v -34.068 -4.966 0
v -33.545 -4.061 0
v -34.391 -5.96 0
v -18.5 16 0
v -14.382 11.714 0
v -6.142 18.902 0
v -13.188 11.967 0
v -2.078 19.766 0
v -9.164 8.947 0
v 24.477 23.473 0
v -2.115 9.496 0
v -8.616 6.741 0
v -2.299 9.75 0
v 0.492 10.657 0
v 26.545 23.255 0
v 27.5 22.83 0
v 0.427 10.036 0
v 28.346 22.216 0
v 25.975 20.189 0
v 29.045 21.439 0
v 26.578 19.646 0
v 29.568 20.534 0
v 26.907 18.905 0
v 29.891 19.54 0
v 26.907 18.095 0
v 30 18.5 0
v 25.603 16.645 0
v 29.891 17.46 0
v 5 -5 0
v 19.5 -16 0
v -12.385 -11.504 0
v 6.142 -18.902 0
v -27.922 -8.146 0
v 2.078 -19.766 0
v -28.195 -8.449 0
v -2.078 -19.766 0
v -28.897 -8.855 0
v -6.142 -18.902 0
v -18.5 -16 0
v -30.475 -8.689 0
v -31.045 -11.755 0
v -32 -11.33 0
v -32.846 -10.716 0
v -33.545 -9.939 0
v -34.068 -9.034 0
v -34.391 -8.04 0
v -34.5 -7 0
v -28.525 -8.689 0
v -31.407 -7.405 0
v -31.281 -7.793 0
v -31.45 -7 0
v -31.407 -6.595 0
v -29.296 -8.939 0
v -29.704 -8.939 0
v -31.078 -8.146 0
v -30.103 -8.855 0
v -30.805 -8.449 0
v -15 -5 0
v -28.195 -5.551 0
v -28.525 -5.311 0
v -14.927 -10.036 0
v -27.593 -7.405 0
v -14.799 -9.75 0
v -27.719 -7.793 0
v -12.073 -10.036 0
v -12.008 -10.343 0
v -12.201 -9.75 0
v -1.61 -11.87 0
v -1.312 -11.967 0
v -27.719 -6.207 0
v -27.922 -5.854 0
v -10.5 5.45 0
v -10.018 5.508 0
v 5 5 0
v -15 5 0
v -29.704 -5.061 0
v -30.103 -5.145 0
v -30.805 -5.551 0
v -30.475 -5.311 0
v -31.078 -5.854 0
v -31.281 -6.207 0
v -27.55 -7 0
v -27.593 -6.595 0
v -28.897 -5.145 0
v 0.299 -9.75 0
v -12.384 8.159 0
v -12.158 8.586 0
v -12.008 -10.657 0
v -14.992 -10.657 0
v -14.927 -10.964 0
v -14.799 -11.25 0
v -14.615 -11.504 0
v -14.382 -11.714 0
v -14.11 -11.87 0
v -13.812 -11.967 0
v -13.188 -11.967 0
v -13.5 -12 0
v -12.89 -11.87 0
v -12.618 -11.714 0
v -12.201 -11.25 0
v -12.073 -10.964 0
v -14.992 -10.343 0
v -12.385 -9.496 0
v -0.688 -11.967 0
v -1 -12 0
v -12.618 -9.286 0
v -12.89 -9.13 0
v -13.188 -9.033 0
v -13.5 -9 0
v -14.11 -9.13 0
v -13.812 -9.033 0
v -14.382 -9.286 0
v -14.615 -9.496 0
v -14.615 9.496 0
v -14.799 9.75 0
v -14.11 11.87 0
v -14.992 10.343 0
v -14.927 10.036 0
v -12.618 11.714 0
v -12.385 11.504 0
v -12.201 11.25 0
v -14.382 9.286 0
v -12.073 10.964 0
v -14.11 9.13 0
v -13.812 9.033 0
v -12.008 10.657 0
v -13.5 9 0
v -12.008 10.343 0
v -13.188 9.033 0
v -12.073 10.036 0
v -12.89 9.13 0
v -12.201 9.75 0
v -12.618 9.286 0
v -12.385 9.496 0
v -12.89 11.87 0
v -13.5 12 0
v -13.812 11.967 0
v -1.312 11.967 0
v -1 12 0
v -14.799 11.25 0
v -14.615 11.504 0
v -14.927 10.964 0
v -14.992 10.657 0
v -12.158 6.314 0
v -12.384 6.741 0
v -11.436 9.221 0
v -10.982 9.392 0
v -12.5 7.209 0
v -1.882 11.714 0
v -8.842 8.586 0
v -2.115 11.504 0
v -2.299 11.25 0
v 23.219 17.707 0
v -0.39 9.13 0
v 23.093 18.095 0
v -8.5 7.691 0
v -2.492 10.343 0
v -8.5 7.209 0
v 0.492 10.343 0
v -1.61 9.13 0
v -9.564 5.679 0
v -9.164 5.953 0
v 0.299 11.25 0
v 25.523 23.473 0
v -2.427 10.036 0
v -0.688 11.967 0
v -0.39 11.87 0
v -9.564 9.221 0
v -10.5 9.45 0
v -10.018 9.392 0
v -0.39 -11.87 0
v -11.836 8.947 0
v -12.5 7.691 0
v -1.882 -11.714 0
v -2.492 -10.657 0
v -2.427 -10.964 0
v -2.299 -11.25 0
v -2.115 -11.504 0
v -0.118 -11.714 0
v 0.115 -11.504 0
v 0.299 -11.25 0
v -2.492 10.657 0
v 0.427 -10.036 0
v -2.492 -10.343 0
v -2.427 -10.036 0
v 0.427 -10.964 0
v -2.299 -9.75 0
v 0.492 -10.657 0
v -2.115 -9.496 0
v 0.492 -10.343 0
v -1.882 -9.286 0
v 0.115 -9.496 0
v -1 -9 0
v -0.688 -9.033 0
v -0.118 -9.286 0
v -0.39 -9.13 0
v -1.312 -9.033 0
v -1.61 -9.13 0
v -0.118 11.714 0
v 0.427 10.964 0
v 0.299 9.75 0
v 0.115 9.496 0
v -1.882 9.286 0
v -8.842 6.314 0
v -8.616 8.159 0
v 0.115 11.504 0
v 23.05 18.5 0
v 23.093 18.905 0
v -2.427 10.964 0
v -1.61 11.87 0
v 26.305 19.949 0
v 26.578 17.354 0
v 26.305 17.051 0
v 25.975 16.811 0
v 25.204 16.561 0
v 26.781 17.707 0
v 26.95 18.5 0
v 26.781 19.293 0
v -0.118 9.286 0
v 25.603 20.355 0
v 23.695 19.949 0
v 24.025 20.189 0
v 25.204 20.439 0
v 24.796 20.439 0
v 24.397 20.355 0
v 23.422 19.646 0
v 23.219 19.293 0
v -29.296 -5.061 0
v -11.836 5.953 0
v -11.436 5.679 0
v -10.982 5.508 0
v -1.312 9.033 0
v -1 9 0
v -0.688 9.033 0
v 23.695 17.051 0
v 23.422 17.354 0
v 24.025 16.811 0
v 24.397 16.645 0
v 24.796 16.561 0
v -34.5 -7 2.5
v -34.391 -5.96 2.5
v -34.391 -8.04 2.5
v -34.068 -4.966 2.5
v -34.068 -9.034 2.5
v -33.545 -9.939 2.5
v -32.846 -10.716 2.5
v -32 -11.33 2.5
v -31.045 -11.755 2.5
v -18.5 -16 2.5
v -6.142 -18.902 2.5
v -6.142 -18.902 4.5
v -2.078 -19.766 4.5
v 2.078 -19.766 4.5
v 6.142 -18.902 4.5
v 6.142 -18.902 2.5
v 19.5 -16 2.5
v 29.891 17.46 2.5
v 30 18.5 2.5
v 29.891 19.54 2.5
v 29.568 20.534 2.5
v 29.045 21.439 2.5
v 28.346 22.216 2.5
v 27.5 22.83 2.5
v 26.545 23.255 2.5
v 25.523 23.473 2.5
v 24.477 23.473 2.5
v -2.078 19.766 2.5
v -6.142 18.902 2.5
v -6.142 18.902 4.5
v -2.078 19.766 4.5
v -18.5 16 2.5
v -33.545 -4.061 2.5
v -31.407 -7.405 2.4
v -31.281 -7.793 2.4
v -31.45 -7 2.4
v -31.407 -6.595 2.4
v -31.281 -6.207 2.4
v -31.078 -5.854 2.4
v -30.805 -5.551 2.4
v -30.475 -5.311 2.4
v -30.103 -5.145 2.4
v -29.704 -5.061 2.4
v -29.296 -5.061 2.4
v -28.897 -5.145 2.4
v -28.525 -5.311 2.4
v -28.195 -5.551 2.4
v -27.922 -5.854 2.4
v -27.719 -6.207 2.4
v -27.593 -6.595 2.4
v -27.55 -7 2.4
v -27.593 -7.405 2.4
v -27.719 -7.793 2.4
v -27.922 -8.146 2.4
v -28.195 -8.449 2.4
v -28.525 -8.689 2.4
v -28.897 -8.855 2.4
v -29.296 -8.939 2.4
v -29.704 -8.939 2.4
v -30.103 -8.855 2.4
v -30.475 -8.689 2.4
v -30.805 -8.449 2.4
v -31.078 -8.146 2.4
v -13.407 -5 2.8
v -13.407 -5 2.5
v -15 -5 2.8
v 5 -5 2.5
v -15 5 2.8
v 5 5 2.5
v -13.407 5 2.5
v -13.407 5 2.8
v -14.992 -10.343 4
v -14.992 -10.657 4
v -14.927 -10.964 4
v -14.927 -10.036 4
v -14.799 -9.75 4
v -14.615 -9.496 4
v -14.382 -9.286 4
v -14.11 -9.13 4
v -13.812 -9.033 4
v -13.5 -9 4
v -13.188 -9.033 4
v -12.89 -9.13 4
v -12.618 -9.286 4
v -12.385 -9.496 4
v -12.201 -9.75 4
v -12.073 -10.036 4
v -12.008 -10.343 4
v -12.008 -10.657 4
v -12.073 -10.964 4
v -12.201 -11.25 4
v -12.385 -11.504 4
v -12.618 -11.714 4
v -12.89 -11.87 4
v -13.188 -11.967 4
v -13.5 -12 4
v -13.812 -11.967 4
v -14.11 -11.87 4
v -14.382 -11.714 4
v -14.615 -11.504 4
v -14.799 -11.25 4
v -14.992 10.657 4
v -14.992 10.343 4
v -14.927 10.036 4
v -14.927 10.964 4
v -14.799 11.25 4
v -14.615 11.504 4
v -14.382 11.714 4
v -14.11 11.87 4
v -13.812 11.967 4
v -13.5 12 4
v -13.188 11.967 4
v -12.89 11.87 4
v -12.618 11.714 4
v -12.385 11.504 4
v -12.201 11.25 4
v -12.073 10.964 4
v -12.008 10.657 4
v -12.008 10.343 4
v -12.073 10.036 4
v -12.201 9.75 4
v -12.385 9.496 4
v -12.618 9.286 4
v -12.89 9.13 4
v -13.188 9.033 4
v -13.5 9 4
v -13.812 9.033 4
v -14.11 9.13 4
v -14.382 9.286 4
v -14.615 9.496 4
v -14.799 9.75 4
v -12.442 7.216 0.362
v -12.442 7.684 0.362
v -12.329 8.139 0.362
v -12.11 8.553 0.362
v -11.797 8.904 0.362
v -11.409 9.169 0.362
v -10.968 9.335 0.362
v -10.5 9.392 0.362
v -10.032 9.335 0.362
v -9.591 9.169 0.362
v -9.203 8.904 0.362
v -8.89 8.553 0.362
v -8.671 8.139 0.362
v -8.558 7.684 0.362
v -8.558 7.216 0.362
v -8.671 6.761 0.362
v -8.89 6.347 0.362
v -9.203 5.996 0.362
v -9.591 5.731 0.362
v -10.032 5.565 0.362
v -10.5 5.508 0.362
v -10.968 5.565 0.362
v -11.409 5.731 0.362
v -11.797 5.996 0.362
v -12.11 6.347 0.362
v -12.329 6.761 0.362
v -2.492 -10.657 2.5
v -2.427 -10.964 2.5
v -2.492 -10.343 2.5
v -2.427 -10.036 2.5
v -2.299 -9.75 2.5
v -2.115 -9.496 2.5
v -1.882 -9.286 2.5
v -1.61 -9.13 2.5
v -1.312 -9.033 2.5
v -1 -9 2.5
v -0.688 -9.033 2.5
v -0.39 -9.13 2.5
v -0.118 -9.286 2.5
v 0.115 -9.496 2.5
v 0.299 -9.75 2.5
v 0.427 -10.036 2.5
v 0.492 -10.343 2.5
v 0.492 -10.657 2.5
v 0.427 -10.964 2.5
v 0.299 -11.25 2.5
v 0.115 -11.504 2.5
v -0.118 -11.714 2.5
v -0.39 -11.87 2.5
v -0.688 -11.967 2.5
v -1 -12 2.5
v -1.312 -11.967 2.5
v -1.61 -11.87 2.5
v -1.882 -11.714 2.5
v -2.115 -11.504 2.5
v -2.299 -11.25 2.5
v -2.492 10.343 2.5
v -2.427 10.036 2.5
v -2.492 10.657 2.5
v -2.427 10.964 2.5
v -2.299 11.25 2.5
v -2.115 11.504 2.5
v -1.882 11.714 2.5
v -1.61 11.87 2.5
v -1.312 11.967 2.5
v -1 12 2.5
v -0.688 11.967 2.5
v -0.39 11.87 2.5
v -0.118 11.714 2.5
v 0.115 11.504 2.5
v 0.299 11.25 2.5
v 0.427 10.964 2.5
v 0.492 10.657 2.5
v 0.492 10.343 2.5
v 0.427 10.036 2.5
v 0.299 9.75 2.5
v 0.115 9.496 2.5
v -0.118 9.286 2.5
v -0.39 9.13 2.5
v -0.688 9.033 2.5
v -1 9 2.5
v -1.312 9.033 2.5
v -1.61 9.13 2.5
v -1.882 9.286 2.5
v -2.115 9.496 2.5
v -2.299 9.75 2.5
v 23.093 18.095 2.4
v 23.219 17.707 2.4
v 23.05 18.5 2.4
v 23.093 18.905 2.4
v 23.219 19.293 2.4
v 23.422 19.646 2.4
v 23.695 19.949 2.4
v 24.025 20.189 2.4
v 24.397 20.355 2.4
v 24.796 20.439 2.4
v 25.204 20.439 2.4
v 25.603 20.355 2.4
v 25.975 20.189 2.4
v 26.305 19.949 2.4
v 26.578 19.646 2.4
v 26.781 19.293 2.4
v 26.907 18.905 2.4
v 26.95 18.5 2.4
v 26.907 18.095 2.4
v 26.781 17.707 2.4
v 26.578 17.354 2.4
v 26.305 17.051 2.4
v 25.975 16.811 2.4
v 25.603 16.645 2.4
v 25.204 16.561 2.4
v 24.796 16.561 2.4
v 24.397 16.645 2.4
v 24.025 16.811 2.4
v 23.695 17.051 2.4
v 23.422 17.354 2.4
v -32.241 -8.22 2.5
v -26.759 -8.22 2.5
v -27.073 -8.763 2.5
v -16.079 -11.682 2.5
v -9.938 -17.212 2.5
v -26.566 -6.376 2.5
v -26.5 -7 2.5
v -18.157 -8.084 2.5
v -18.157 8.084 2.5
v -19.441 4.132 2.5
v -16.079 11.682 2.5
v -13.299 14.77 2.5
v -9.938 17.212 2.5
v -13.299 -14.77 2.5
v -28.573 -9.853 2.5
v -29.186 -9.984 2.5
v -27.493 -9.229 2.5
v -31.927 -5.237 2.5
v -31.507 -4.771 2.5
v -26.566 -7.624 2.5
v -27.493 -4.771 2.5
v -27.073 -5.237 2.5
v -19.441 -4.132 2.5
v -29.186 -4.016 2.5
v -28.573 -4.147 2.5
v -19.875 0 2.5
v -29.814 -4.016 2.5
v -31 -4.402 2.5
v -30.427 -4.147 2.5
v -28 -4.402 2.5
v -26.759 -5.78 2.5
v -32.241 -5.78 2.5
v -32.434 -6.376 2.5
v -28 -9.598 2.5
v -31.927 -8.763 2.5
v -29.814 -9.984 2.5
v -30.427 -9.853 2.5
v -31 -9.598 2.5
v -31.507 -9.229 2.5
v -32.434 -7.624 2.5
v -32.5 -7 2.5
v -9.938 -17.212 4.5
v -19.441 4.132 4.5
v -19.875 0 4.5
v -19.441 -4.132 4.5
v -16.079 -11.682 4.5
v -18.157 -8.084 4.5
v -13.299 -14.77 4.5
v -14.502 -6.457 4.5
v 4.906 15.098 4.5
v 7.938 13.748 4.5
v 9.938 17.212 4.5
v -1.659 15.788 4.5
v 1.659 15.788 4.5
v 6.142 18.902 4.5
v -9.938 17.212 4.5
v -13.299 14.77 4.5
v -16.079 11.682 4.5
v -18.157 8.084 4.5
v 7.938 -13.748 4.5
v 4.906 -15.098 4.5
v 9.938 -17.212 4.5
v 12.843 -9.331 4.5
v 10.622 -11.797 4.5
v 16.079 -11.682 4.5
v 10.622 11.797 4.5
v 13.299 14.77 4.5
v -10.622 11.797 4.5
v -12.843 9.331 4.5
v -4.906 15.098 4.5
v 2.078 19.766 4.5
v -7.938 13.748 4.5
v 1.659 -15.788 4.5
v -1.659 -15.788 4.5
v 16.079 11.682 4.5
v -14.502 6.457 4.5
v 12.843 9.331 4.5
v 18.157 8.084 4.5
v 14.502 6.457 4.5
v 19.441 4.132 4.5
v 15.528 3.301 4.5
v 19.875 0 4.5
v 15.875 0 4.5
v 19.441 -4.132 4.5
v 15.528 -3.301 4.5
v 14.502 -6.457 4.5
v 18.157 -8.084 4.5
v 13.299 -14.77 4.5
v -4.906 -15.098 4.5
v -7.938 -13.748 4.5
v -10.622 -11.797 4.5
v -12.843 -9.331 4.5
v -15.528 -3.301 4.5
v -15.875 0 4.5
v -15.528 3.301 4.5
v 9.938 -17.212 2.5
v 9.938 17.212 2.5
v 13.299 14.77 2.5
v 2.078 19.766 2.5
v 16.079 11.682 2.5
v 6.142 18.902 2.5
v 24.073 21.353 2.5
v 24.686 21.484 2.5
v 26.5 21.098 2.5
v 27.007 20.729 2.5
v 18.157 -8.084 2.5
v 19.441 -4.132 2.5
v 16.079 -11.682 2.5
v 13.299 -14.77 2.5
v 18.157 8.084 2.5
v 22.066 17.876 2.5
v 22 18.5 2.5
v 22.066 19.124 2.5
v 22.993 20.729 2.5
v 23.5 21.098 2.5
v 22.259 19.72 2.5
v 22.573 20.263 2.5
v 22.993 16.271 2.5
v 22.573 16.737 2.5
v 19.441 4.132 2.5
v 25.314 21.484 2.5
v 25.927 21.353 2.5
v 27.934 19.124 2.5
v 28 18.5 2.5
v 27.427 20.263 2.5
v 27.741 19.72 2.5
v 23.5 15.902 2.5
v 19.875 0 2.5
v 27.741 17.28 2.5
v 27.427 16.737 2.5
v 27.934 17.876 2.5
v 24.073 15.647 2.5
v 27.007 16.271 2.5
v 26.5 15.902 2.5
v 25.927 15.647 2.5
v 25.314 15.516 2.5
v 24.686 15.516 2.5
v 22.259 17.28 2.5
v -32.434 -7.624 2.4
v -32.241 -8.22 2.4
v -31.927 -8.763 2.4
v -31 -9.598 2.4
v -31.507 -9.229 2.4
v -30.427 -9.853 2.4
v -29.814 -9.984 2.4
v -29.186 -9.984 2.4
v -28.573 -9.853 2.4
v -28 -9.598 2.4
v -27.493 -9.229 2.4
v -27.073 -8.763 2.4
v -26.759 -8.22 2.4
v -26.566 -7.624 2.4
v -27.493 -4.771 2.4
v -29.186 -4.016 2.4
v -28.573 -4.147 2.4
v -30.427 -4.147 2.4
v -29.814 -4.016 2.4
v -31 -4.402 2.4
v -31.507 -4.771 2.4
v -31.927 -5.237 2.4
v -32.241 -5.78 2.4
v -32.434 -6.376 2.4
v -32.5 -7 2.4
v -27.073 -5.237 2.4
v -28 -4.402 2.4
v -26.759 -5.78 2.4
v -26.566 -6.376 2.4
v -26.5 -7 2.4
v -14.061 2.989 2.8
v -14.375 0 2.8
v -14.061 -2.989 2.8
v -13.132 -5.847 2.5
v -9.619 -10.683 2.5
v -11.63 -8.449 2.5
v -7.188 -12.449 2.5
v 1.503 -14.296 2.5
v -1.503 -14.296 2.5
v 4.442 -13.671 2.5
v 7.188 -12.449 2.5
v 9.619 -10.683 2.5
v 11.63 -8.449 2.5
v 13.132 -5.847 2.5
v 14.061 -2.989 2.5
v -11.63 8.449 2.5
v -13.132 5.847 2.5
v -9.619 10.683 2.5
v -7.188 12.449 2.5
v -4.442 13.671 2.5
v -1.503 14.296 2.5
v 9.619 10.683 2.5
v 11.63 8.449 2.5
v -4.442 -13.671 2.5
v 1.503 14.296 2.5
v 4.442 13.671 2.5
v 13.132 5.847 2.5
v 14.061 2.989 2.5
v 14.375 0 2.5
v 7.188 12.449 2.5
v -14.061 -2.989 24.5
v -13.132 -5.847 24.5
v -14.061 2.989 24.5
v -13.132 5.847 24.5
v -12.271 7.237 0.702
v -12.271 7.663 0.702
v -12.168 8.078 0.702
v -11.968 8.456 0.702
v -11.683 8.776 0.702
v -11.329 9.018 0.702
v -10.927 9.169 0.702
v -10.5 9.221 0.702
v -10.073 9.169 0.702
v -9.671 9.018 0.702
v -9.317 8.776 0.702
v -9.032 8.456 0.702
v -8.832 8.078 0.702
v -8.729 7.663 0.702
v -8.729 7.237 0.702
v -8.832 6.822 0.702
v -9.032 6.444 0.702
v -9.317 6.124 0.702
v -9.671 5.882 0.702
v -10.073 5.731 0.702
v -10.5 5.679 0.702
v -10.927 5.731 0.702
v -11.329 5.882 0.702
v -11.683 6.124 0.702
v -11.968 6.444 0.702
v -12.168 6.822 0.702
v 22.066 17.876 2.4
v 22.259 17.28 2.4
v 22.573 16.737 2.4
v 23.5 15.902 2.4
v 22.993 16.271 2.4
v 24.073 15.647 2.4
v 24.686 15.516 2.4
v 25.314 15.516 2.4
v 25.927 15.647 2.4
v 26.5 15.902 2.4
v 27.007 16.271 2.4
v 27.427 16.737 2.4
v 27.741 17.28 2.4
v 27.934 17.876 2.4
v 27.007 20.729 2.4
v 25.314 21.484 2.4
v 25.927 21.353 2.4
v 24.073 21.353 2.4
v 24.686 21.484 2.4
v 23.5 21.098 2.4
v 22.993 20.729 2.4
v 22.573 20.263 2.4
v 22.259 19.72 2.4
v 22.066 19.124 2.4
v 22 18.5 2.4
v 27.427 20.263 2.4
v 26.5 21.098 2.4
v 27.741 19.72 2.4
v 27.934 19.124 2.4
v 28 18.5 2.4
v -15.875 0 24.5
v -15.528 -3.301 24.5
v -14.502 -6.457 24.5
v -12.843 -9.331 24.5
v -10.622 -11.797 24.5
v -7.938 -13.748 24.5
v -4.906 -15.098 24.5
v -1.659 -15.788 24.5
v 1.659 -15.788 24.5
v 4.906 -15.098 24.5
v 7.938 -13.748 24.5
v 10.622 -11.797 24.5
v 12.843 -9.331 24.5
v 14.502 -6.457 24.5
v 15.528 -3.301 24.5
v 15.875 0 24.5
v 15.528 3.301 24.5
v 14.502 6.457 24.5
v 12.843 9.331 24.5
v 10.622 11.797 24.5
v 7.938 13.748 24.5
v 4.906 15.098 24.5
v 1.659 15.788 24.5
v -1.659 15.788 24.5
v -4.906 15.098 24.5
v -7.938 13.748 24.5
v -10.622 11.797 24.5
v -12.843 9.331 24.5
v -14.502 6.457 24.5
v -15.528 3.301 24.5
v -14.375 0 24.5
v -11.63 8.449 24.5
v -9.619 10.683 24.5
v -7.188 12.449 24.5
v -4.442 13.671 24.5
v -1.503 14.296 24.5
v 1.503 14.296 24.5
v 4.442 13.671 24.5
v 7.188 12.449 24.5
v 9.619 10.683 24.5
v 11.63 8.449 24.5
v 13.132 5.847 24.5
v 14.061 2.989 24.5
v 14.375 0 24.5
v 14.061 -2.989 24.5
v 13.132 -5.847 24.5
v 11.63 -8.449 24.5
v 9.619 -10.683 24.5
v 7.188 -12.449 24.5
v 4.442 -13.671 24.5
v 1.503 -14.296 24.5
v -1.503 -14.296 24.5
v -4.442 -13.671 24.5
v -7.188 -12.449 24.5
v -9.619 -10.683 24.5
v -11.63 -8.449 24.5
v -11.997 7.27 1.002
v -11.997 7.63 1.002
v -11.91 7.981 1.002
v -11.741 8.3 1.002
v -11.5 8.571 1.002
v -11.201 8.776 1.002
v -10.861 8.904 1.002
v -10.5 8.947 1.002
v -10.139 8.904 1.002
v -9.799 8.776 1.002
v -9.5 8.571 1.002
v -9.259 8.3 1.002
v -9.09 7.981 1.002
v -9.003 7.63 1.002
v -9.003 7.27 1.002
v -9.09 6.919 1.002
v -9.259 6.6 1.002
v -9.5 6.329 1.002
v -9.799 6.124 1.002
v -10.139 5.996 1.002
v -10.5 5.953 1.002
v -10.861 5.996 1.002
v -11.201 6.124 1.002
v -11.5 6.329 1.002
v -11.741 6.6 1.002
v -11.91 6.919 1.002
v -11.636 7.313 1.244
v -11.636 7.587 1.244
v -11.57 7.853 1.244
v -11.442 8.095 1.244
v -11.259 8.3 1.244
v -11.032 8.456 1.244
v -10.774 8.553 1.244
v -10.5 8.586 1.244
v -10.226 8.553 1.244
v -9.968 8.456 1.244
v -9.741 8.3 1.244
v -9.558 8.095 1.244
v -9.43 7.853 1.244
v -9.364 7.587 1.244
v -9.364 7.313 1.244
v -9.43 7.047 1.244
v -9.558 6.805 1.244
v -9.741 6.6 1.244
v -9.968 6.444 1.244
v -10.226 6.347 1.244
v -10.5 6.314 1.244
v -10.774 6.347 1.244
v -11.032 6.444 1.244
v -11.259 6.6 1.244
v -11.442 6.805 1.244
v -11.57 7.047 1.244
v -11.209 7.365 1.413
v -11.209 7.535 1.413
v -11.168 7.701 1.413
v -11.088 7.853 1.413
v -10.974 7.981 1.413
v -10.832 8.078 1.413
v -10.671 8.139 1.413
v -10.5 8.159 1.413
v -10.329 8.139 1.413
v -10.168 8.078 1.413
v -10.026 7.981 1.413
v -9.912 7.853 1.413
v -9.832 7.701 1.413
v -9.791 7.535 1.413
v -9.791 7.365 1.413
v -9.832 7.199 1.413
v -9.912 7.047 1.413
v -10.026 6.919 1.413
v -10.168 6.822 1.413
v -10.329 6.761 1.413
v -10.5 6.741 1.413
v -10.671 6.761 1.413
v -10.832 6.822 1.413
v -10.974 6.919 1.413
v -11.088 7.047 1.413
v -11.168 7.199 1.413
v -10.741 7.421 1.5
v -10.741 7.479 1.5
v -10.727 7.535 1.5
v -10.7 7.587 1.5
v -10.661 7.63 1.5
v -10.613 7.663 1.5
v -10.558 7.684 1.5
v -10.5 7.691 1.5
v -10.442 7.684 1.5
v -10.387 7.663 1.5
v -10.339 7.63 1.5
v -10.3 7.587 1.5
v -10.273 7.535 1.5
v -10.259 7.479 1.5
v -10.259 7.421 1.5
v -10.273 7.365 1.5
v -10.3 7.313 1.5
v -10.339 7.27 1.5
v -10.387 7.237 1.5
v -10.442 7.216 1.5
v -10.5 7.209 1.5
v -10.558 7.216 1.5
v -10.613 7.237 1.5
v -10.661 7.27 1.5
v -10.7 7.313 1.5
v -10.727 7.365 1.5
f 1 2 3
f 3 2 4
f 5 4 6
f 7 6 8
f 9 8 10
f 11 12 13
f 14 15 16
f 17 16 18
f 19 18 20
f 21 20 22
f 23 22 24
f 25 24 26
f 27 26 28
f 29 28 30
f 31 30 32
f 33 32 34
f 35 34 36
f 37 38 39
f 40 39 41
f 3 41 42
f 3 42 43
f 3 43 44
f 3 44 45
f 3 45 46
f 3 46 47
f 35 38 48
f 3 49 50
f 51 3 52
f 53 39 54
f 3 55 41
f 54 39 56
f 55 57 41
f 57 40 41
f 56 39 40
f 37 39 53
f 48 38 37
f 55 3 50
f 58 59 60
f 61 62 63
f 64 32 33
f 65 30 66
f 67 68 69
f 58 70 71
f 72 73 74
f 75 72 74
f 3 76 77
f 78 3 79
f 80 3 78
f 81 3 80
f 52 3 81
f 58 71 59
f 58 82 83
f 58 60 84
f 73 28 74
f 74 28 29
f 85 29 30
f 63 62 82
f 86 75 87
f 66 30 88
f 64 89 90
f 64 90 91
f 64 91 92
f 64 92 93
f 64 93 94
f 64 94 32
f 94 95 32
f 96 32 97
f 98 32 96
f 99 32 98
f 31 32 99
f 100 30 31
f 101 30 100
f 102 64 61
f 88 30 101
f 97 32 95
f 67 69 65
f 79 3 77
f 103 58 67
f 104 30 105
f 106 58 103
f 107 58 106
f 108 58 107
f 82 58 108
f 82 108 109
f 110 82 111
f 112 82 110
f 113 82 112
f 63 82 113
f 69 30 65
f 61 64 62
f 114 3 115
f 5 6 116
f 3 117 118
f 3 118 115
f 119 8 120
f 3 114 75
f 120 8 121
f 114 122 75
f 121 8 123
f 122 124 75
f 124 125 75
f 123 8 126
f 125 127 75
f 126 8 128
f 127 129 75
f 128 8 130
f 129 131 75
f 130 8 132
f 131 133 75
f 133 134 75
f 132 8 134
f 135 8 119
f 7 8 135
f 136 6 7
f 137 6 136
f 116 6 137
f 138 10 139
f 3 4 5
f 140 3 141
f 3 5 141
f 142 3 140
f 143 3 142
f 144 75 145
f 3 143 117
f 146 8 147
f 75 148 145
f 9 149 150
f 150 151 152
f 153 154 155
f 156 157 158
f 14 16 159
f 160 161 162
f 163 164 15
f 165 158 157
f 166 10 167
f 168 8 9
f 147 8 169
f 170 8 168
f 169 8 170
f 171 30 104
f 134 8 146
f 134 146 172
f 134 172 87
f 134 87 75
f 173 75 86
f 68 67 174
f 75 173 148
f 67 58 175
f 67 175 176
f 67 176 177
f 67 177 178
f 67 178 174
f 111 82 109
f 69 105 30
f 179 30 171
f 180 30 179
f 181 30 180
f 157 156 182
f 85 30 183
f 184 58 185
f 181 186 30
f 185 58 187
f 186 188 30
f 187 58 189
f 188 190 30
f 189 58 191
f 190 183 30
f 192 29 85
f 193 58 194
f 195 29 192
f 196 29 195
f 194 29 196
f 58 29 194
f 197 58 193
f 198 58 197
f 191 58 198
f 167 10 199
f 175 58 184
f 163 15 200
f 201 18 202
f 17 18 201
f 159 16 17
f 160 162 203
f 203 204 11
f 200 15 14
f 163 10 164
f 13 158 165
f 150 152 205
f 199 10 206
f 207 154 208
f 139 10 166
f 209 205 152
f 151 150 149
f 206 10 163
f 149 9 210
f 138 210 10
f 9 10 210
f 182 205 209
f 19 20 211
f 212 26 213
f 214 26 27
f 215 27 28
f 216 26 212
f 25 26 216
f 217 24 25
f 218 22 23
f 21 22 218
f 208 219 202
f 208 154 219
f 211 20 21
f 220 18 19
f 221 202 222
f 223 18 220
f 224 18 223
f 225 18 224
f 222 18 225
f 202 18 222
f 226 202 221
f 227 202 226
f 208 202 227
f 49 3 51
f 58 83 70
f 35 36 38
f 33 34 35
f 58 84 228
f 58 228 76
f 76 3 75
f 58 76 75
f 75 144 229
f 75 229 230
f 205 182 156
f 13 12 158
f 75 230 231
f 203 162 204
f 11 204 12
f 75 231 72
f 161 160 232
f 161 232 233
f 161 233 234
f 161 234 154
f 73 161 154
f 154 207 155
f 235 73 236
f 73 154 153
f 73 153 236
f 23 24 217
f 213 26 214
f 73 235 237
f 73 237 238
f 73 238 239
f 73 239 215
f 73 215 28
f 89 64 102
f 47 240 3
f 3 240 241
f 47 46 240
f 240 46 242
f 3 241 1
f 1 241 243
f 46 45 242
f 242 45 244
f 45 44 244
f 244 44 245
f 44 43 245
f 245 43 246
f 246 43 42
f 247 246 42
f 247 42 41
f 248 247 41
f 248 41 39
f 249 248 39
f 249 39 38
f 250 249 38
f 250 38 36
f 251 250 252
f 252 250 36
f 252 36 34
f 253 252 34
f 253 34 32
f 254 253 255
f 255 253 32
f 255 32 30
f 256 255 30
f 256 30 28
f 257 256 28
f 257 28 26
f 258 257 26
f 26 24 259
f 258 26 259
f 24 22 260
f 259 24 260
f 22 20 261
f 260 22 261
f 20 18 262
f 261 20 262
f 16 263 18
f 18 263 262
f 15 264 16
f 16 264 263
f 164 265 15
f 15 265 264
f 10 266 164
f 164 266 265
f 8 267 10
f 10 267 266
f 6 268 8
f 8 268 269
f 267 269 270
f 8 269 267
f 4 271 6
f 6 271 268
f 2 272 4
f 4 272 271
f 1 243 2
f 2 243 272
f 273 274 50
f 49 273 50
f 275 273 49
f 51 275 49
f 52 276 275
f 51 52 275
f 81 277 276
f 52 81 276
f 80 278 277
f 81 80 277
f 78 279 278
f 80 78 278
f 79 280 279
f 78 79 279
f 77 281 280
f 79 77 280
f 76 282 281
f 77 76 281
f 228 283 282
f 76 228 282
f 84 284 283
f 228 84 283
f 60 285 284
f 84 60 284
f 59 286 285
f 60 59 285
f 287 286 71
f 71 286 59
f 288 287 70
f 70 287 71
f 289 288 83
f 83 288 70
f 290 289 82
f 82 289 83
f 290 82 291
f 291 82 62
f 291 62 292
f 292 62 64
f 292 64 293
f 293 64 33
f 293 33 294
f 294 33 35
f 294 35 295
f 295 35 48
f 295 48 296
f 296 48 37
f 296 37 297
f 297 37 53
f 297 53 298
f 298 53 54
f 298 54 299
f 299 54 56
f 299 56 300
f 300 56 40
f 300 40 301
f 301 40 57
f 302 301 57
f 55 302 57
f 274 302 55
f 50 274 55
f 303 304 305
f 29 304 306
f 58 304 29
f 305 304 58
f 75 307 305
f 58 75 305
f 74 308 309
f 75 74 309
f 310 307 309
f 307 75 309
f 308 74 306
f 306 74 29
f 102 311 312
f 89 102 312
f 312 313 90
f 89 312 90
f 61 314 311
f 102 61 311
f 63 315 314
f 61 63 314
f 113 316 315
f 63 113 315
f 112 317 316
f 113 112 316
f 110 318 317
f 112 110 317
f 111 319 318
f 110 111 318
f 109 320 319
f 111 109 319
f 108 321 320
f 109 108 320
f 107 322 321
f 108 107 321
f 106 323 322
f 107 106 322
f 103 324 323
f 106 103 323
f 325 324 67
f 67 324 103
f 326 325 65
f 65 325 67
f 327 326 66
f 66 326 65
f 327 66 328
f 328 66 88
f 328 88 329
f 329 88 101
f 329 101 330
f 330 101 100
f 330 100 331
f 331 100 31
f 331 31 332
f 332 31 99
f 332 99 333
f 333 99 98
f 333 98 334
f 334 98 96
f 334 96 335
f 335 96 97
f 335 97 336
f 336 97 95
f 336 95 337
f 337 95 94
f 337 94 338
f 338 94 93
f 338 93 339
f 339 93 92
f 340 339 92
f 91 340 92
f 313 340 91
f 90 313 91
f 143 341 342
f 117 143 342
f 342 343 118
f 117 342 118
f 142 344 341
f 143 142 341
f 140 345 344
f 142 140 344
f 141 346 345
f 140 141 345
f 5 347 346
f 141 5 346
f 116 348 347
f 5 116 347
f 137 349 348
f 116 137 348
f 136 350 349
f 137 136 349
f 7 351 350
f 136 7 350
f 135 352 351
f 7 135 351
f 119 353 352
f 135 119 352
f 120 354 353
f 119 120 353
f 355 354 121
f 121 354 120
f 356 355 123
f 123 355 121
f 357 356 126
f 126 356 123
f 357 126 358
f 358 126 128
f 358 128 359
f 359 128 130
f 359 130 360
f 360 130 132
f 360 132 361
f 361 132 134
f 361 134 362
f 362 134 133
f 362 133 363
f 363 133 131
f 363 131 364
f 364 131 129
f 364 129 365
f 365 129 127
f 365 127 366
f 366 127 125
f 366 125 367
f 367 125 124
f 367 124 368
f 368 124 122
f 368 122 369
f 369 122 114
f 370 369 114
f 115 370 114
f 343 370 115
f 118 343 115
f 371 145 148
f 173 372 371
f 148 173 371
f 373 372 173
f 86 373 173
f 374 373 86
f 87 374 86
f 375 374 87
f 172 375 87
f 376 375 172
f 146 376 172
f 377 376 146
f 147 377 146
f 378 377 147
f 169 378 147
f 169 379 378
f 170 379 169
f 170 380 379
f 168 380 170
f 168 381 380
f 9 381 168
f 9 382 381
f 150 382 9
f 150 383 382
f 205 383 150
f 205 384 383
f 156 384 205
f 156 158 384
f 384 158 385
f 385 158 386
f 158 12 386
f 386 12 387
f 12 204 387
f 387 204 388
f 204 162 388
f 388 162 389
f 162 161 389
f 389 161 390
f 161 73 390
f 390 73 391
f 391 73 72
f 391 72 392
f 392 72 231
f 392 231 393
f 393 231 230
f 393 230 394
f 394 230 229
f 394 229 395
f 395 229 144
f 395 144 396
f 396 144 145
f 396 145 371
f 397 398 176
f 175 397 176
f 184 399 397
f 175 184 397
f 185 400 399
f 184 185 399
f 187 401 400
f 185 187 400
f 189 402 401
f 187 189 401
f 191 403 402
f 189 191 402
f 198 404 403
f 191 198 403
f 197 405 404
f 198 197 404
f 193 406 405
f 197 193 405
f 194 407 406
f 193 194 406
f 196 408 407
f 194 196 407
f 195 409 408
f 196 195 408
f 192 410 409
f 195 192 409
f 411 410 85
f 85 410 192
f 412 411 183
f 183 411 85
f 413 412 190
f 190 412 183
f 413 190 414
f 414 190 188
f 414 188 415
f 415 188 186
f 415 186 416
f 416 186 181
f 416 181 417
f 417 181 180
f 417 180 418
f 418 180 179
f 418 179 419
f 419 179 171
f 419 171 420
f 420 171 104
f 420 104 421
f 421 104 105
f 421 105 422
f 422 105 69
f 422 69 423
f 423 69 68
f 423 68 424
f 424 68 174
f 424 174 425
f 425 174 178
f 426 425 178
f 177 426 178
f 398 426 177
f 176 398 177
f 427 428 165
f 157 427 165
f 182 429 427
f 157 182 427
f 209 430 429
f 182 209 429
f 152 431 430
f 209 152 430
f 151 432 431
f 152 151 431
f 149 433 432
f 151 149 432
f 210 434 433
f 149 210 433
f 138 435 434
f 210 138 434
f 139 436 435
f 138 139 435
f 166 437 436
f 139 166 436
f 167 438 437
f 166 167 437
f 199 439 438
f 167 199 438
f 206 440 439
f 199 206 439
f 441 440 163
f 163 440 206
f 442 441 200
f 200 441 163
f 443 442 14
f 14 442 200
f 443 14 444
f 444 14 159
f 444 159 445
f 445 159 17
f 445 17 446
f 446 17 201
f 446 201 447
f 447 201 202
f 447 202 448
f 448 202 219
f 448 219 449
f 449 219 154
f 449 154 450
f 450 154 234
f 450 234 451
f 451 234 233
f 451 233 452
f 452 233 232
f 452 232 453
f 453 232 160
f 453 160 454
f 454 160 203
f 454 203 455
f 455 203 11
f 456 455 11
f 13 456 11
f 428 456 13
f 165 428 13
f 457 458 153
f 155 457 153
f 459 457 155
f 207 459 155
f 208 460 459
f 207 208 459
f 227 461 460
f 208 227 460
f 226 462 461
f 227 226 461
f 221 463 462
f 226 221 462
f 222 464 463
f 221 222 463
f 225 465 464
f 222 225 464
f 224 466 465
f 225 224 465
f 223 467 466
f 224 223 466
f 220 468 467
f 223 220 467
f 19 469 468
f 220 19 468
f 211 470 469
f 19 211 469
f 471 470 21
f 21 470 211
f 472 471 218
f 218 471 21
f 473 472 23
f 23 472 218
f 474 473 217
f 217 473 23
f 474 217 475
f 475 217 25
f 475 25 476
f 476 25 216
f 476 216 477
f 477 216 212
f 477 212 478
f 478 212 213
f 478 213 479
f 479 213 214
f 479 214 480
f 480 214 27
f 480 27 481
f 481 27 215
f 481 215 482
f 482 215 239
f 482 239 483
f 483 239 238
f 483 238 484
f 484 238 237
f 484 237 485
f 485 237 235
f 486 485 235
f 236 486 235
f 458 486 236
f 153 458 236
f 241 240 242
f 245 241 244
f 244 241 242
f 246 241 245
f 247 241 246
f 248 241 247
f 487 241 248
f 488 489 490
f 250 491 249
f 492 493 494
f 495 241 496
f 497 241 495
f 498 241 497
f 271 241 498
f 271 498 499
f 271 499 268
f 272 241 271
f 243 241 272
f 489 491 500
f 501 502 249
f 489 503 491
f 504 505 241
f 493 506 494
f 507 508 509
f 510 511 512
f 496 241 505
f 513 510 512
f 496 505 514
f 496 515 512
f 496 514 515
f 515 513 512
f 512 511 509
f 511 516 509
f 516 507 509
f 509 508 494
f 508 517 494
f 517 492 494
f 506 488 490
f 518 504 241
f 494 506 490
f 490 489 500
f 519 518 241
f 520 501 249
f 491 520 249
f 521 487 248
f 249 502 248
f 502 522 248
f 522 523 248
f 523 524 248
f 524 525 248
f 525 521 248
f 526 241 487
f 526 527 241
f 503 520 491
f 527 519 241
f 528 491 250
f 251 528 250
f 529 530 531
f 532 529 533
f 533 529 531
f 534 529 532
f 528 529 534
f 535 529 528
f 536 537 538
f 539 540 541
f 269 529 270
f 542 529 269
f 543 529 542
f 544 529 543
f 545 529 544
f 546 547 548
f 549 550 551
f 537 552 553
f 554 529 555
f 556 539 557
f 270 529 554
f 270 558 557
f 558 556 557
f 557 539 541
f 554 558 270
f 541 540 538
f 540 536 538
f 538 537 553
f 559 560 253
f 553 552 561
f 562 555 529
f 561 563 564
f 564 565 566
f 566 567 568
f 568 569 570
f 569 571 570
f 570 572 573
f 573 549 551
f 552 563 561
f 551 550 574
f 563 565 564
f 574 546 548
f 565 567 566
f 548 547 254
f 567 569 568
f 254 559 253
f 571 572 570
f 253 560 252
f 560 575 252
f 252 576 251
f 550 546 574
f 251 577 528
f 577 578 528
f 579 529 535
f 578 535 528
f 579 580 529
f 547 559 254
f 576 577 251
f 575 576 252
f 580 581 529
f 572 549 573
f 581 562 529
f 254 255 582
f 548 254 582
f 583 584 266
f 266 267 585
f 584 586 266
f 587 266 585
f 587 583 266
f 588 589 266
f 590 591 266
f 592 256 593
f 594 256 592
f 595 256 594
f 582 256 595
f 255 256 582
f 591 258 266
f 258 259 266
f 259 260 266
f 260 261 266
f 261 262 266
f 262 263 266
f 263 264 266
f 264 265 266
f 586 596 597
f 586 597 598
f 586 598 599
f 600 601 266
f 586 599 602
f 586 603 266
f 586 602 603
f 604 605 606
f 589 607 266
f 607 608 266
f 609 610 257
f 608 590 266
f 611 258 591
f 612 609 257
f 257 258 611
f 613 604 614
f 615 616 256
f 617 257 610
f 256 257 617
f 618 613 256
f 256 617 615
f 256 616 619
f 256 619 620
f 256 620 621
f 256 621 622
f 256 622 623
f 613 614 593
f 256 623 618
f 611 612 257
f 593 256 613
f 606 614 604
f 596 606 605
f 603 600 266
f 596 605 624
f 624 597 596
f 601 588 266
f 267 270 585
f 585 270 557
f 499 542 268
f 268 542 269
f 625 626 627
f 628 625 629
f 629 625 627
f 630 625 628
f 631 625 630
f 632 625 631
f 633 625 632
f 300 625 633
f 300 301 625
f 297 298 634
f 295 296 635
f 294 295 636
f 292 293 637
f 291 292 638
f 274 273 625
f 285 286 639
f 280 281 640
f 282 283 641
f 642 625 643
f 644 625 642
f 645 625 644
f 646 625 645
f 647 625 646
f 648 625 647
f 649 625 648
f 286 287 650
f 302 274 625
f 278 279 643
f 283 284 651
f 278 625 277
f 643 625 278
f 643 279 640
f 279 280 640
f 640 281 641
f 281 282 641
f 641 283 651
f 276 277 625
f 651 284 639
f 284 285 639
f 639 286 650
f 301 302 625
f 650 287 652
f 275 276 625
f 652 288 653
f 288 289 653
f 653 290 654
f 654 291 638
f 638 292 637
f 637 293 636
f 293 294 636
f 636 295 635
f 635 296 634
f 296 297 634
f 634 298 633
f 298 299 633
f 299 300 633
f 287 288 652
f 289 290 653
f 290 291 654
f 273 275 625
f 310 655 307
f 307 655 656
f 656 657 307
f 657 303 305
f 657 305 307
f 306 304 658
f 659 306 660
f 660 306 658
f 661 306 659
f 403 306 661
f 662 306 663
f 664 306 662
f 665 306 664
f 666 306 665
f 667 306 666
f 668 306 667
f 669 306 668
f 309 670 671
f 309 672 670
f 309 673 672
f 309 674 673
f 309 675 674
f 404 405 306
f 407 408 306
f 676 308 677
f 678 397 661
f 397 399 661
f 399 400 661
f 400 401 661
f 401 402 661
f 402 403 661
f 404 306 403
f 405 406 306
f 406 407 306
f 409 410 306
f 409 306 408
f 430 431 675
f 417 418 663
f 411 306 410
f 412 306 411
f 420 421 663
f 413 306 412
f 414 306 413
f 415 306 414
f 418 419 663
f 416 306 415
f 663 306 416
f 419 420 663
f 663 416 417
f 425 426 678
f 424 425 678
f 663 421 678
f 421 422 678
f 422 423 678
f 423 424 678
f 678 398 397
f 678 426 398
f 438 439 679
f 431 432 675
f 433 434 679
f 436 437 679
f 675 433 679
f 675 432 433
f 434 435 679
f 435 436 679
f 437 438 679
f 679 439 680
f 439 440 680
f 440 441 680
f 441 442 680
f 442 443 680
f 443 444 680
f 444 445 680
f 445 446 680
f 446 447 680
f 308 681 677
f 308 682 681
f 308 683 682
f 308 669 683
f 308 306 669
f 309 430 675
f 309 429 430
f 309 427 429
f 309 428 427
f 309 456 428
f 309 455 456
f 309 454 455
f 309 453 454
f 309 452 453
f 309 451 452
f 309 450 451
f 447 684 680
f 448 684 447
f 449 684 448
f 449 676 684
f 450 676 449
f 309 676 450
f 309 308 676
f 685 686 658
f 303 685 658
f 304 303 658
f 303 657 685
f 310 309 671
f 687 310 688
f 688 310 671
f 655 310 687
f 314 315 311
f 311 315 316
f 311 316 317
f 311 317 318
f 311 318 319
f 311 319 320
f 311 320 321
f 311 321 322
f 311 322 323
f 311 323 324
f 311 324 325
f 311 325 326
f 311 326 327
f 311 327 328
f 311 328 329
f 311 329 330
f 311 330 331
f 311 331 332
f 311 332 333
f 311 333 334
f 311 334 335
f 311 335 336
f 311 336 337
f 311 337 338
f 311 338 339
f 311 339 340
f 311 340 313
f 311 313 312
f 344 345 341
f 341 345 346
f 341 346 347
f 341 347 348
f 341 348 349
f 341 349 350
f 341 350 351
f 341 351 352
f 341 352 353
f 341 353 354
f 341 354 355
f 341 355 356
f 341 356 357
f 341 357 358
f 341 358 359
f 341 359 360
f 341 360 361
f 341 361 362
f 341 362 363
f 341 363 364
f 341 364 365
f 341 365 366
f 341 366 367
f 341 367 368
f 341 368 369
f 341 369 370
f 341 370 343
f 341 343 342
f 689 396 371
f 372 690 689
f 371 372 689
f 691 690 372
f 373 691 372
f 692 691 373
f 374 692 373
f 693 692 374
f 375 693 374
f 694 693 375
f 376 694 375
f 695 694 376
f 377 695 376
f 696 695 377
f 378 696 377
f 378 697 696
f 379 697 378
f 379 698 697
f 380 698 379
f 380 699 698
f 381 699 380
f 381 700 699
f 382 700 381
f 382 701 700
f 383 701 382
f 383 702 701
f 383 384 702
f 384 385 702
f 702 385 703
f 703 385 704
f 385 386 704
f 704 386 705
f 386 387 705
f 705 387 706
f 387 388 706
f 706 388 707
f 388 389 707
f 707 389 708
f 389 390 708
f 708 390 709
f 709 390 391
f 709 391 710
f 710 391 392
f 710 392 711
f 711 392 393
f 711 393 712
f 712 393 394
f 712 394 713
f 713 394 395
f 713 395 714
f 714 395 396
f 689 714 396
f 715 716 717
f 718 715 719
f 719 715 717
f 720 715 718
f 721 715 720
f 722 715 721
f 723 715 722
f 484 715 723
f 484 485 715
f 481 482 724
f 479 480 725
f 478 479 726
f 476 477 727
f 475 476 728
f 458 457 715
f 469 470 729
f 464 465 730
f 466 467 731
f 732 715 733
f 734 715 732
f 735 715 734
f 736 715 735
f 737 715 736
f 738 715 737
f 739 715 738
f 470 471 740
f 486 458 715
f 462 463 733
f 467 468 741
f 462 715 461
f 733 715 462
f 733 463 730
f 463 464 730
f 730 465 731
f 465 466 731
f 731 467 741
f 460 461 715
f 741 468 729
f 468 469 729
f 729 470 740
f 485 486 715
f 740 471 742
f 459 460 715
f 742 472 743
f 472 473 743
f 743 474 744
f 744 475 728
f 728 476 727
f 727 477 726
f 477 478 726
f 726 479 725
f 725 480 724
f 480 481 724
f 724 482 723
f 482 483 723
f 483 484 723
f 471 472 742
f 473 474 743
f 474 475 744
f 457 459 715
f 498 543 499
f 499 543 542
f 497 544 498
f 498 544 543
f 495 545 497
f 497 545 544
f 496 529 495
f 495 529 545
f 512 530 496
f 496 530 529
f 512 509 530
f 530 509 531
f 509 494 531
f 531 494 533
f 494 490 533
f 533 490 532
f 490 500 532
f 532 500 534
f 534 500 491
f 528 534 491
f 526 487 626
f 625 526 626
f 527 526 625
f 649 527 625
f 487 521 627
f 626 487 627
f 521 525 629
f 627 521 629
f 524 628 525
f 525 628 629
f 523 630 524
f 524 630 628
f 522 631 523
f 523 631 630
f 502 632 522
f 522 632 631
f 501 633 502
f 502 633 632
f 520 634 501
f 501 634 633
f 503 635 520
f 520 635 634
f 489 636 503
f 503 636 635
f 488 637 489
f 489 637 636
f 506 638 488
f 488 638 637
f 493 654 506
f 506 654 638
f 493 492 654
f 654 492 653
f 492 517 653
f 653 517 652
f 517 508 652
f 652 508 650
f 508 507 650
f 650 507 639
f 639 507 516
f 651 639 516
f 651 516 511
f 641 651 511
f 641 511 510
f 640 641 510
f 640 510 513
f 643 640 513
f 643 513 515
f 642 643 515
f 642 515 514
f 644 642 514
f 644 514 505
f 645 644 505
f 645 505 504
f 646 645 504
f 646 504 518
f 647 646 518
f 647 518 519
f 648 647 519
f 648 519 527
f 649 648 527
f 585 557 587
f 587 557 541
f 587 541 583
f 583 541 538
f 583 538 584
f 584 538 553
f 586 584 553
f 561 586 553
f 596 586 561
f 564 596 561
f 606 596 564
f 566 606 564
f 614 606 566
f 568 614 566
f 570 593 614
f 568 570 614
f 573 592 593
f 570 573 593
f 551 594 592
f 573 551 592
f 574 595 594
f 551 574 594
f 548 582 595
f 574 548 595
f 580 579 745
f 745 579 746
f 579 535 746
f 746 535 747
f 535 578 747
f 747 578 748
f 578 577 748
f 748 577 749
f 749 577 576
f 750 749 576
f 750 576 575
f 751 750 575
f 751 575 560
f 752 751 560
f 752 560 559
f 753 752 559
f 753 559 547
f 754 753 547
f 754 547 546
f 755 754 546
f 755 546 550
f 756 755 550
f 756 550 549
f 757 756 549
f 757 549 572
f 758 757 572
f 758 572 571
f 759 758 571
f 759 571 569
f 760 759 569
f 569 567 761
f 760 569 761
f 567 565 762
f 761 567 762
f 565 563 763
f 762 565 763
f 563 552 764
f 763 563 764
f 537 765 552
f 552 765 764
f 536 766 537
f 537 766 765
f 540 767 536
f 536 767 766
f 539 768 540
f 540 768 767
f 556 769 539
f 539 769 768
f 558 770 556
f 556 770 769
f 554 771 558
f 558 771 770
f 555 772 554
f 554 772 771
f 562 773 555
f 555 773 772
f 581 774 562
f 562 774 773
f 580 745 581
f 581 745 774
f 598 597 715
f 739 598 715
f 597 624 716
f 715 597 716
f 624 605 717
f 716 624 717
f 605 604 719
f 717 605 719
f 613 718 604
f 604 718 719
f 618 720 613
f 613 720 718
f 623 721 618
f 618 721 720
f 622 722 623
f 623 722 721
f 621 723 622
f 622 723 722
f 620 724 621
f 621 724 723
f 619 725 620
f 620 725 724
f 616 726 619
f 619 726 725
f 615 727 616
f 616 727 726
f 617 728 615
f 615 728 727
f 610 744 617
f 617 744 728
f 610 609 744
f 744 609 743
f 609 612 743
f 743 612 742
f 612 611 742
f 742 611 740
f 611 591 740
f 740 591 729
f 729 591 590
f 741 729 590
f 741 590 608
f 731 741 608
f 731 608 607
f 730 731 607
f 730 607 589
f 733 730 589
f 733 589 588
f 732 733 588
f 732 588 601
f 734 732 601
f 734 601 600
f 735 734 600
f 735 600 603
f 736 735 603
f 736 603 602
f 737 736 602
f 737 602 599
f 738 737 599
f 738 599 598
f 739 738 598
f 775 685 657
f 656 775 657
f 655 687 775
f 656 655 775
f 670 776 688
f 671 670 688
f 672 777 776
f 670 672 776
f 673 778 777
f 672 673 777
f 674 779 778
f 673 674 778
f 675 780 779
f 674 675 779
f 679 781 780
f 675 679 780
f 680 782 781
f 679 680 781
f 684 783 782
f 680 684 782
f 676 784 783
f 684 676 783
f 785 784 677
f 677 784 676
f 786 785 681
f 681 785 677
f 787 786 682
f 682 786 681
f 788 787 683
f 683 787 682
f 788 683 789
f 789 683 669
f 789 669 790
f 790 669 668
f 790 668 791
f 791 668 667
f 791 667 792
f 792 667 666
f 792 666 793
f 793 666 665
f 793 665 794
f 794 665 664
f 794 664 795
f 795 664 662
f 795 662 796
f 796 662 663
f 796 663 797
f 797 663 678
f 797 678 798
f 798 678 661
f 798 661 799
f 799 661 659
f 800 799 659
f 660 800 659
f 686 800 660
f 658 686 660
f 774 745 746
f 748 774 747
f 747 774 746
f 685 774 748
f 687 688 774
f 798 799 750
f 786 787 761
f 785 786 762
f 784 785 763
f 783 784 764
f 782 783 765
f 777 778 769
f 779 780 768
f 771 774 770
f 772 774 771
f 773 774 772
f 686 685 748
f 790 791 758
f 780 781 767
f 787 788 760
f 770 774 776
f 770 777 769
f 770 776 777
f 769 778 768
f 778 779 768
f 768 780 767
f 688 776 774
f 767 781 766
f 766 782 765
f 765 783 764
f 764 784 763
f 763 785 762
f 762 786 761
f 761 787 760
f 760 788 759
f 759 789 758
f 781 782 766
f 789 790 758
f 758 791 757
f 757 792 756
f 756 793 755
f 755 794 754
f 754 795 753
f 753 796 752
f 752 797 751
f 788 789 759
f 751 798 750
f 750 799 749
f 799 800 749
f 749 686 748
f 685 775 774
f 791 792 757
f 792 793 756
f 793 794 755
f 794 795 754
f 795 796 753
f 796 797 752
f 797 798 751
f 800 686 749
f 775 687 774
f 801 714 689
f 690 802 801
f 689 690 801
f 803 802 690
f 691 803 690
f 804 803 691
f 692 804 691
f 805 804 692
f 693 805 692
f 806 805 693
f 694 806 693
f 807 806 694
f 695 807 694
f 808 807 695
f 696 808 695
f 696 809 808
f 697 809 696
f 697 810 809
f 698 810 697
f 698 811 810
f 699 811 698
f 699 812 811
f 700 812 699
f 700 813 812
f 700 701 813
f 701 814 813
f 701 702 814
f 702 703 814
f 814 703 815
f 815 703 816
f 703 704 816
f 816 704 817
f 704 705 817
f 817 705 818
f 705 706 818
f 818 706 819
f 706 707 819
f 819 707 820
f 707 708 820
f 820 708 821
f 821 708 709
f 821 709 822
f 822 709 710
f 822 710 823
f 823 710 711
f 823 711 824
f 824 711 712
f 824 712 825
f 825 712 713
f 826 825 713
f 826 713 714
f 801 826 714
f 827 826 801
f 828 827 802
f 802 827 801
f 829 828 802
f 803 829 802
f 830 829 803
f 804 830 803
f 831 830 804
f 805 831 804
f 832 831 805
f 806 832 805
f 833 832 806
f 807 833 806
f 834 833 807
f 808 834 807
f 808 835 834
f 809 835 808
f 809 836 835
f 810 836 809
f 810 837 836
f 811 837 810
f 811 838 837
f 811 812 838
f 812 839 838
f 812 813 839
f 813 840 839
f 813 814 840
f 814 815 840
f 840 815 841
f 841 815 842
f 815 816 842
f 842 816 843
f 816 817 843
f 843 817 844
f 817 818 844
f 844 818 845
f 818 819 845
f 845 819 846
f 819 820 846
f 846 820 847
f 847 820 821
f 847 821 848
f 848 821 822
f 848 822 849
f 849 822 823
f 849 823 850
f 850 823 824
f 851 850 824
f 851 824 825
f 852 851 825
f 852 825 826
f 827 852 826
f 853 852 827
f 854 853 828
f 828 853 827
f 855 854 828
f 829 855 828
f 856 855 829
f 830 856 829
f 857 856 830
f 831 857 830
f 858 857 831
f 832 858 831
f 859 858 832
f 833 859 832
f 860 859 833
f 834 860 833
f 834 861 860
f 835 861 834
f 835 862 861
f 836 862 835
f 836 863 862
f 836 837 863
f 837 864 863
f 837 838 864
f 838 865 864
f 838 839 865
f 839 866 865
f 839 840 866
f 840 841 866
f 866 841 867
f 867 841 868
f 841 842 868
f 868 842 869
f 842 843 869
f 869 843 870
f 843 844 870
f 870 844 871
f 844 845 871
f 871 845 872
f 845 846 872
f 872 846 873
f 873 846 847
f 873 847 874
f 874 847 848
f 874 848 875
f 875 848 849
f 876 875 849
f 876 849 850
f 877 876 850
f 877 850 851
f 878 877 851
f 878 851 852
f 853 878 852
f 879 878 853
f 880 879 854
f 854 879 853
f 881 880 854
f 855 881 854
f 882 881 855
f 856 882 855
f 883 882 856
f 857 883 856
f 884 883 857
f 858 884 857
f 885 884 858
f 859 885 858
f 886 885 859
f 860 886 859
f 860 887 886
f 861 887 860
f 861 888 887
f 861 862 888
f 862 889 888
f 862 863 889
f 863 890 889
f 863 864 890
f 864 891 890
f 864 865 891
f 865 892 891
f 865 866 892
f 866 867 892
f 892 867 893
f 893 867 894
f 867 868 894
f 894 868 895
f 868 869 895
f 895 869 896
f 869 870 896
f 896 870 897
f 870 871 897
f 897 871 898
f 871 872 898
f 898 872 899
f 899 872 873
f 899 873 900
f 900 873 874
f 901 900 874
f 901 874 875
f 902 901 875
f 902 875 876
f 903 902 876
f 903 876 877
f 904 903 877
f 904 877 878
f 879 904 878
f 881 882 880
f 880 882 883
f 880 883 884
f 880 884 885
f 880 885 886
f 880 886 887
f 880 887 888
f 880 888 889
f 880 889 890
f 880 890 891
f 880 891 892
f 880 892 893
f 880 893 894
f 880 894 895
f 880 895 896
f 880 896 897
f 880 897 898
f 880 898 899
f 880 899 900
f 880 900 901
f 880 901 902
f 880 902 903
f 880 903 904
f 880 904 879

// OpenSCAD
// camera module draw tube that slides into the telescope nosepiece.

$fs=0.25;
// Make the values explicit since we are not running customizer
Drawtube_OD_inches_explicit = 1.25;
part_explicit="drawtube";

include <pipiece.scad>
